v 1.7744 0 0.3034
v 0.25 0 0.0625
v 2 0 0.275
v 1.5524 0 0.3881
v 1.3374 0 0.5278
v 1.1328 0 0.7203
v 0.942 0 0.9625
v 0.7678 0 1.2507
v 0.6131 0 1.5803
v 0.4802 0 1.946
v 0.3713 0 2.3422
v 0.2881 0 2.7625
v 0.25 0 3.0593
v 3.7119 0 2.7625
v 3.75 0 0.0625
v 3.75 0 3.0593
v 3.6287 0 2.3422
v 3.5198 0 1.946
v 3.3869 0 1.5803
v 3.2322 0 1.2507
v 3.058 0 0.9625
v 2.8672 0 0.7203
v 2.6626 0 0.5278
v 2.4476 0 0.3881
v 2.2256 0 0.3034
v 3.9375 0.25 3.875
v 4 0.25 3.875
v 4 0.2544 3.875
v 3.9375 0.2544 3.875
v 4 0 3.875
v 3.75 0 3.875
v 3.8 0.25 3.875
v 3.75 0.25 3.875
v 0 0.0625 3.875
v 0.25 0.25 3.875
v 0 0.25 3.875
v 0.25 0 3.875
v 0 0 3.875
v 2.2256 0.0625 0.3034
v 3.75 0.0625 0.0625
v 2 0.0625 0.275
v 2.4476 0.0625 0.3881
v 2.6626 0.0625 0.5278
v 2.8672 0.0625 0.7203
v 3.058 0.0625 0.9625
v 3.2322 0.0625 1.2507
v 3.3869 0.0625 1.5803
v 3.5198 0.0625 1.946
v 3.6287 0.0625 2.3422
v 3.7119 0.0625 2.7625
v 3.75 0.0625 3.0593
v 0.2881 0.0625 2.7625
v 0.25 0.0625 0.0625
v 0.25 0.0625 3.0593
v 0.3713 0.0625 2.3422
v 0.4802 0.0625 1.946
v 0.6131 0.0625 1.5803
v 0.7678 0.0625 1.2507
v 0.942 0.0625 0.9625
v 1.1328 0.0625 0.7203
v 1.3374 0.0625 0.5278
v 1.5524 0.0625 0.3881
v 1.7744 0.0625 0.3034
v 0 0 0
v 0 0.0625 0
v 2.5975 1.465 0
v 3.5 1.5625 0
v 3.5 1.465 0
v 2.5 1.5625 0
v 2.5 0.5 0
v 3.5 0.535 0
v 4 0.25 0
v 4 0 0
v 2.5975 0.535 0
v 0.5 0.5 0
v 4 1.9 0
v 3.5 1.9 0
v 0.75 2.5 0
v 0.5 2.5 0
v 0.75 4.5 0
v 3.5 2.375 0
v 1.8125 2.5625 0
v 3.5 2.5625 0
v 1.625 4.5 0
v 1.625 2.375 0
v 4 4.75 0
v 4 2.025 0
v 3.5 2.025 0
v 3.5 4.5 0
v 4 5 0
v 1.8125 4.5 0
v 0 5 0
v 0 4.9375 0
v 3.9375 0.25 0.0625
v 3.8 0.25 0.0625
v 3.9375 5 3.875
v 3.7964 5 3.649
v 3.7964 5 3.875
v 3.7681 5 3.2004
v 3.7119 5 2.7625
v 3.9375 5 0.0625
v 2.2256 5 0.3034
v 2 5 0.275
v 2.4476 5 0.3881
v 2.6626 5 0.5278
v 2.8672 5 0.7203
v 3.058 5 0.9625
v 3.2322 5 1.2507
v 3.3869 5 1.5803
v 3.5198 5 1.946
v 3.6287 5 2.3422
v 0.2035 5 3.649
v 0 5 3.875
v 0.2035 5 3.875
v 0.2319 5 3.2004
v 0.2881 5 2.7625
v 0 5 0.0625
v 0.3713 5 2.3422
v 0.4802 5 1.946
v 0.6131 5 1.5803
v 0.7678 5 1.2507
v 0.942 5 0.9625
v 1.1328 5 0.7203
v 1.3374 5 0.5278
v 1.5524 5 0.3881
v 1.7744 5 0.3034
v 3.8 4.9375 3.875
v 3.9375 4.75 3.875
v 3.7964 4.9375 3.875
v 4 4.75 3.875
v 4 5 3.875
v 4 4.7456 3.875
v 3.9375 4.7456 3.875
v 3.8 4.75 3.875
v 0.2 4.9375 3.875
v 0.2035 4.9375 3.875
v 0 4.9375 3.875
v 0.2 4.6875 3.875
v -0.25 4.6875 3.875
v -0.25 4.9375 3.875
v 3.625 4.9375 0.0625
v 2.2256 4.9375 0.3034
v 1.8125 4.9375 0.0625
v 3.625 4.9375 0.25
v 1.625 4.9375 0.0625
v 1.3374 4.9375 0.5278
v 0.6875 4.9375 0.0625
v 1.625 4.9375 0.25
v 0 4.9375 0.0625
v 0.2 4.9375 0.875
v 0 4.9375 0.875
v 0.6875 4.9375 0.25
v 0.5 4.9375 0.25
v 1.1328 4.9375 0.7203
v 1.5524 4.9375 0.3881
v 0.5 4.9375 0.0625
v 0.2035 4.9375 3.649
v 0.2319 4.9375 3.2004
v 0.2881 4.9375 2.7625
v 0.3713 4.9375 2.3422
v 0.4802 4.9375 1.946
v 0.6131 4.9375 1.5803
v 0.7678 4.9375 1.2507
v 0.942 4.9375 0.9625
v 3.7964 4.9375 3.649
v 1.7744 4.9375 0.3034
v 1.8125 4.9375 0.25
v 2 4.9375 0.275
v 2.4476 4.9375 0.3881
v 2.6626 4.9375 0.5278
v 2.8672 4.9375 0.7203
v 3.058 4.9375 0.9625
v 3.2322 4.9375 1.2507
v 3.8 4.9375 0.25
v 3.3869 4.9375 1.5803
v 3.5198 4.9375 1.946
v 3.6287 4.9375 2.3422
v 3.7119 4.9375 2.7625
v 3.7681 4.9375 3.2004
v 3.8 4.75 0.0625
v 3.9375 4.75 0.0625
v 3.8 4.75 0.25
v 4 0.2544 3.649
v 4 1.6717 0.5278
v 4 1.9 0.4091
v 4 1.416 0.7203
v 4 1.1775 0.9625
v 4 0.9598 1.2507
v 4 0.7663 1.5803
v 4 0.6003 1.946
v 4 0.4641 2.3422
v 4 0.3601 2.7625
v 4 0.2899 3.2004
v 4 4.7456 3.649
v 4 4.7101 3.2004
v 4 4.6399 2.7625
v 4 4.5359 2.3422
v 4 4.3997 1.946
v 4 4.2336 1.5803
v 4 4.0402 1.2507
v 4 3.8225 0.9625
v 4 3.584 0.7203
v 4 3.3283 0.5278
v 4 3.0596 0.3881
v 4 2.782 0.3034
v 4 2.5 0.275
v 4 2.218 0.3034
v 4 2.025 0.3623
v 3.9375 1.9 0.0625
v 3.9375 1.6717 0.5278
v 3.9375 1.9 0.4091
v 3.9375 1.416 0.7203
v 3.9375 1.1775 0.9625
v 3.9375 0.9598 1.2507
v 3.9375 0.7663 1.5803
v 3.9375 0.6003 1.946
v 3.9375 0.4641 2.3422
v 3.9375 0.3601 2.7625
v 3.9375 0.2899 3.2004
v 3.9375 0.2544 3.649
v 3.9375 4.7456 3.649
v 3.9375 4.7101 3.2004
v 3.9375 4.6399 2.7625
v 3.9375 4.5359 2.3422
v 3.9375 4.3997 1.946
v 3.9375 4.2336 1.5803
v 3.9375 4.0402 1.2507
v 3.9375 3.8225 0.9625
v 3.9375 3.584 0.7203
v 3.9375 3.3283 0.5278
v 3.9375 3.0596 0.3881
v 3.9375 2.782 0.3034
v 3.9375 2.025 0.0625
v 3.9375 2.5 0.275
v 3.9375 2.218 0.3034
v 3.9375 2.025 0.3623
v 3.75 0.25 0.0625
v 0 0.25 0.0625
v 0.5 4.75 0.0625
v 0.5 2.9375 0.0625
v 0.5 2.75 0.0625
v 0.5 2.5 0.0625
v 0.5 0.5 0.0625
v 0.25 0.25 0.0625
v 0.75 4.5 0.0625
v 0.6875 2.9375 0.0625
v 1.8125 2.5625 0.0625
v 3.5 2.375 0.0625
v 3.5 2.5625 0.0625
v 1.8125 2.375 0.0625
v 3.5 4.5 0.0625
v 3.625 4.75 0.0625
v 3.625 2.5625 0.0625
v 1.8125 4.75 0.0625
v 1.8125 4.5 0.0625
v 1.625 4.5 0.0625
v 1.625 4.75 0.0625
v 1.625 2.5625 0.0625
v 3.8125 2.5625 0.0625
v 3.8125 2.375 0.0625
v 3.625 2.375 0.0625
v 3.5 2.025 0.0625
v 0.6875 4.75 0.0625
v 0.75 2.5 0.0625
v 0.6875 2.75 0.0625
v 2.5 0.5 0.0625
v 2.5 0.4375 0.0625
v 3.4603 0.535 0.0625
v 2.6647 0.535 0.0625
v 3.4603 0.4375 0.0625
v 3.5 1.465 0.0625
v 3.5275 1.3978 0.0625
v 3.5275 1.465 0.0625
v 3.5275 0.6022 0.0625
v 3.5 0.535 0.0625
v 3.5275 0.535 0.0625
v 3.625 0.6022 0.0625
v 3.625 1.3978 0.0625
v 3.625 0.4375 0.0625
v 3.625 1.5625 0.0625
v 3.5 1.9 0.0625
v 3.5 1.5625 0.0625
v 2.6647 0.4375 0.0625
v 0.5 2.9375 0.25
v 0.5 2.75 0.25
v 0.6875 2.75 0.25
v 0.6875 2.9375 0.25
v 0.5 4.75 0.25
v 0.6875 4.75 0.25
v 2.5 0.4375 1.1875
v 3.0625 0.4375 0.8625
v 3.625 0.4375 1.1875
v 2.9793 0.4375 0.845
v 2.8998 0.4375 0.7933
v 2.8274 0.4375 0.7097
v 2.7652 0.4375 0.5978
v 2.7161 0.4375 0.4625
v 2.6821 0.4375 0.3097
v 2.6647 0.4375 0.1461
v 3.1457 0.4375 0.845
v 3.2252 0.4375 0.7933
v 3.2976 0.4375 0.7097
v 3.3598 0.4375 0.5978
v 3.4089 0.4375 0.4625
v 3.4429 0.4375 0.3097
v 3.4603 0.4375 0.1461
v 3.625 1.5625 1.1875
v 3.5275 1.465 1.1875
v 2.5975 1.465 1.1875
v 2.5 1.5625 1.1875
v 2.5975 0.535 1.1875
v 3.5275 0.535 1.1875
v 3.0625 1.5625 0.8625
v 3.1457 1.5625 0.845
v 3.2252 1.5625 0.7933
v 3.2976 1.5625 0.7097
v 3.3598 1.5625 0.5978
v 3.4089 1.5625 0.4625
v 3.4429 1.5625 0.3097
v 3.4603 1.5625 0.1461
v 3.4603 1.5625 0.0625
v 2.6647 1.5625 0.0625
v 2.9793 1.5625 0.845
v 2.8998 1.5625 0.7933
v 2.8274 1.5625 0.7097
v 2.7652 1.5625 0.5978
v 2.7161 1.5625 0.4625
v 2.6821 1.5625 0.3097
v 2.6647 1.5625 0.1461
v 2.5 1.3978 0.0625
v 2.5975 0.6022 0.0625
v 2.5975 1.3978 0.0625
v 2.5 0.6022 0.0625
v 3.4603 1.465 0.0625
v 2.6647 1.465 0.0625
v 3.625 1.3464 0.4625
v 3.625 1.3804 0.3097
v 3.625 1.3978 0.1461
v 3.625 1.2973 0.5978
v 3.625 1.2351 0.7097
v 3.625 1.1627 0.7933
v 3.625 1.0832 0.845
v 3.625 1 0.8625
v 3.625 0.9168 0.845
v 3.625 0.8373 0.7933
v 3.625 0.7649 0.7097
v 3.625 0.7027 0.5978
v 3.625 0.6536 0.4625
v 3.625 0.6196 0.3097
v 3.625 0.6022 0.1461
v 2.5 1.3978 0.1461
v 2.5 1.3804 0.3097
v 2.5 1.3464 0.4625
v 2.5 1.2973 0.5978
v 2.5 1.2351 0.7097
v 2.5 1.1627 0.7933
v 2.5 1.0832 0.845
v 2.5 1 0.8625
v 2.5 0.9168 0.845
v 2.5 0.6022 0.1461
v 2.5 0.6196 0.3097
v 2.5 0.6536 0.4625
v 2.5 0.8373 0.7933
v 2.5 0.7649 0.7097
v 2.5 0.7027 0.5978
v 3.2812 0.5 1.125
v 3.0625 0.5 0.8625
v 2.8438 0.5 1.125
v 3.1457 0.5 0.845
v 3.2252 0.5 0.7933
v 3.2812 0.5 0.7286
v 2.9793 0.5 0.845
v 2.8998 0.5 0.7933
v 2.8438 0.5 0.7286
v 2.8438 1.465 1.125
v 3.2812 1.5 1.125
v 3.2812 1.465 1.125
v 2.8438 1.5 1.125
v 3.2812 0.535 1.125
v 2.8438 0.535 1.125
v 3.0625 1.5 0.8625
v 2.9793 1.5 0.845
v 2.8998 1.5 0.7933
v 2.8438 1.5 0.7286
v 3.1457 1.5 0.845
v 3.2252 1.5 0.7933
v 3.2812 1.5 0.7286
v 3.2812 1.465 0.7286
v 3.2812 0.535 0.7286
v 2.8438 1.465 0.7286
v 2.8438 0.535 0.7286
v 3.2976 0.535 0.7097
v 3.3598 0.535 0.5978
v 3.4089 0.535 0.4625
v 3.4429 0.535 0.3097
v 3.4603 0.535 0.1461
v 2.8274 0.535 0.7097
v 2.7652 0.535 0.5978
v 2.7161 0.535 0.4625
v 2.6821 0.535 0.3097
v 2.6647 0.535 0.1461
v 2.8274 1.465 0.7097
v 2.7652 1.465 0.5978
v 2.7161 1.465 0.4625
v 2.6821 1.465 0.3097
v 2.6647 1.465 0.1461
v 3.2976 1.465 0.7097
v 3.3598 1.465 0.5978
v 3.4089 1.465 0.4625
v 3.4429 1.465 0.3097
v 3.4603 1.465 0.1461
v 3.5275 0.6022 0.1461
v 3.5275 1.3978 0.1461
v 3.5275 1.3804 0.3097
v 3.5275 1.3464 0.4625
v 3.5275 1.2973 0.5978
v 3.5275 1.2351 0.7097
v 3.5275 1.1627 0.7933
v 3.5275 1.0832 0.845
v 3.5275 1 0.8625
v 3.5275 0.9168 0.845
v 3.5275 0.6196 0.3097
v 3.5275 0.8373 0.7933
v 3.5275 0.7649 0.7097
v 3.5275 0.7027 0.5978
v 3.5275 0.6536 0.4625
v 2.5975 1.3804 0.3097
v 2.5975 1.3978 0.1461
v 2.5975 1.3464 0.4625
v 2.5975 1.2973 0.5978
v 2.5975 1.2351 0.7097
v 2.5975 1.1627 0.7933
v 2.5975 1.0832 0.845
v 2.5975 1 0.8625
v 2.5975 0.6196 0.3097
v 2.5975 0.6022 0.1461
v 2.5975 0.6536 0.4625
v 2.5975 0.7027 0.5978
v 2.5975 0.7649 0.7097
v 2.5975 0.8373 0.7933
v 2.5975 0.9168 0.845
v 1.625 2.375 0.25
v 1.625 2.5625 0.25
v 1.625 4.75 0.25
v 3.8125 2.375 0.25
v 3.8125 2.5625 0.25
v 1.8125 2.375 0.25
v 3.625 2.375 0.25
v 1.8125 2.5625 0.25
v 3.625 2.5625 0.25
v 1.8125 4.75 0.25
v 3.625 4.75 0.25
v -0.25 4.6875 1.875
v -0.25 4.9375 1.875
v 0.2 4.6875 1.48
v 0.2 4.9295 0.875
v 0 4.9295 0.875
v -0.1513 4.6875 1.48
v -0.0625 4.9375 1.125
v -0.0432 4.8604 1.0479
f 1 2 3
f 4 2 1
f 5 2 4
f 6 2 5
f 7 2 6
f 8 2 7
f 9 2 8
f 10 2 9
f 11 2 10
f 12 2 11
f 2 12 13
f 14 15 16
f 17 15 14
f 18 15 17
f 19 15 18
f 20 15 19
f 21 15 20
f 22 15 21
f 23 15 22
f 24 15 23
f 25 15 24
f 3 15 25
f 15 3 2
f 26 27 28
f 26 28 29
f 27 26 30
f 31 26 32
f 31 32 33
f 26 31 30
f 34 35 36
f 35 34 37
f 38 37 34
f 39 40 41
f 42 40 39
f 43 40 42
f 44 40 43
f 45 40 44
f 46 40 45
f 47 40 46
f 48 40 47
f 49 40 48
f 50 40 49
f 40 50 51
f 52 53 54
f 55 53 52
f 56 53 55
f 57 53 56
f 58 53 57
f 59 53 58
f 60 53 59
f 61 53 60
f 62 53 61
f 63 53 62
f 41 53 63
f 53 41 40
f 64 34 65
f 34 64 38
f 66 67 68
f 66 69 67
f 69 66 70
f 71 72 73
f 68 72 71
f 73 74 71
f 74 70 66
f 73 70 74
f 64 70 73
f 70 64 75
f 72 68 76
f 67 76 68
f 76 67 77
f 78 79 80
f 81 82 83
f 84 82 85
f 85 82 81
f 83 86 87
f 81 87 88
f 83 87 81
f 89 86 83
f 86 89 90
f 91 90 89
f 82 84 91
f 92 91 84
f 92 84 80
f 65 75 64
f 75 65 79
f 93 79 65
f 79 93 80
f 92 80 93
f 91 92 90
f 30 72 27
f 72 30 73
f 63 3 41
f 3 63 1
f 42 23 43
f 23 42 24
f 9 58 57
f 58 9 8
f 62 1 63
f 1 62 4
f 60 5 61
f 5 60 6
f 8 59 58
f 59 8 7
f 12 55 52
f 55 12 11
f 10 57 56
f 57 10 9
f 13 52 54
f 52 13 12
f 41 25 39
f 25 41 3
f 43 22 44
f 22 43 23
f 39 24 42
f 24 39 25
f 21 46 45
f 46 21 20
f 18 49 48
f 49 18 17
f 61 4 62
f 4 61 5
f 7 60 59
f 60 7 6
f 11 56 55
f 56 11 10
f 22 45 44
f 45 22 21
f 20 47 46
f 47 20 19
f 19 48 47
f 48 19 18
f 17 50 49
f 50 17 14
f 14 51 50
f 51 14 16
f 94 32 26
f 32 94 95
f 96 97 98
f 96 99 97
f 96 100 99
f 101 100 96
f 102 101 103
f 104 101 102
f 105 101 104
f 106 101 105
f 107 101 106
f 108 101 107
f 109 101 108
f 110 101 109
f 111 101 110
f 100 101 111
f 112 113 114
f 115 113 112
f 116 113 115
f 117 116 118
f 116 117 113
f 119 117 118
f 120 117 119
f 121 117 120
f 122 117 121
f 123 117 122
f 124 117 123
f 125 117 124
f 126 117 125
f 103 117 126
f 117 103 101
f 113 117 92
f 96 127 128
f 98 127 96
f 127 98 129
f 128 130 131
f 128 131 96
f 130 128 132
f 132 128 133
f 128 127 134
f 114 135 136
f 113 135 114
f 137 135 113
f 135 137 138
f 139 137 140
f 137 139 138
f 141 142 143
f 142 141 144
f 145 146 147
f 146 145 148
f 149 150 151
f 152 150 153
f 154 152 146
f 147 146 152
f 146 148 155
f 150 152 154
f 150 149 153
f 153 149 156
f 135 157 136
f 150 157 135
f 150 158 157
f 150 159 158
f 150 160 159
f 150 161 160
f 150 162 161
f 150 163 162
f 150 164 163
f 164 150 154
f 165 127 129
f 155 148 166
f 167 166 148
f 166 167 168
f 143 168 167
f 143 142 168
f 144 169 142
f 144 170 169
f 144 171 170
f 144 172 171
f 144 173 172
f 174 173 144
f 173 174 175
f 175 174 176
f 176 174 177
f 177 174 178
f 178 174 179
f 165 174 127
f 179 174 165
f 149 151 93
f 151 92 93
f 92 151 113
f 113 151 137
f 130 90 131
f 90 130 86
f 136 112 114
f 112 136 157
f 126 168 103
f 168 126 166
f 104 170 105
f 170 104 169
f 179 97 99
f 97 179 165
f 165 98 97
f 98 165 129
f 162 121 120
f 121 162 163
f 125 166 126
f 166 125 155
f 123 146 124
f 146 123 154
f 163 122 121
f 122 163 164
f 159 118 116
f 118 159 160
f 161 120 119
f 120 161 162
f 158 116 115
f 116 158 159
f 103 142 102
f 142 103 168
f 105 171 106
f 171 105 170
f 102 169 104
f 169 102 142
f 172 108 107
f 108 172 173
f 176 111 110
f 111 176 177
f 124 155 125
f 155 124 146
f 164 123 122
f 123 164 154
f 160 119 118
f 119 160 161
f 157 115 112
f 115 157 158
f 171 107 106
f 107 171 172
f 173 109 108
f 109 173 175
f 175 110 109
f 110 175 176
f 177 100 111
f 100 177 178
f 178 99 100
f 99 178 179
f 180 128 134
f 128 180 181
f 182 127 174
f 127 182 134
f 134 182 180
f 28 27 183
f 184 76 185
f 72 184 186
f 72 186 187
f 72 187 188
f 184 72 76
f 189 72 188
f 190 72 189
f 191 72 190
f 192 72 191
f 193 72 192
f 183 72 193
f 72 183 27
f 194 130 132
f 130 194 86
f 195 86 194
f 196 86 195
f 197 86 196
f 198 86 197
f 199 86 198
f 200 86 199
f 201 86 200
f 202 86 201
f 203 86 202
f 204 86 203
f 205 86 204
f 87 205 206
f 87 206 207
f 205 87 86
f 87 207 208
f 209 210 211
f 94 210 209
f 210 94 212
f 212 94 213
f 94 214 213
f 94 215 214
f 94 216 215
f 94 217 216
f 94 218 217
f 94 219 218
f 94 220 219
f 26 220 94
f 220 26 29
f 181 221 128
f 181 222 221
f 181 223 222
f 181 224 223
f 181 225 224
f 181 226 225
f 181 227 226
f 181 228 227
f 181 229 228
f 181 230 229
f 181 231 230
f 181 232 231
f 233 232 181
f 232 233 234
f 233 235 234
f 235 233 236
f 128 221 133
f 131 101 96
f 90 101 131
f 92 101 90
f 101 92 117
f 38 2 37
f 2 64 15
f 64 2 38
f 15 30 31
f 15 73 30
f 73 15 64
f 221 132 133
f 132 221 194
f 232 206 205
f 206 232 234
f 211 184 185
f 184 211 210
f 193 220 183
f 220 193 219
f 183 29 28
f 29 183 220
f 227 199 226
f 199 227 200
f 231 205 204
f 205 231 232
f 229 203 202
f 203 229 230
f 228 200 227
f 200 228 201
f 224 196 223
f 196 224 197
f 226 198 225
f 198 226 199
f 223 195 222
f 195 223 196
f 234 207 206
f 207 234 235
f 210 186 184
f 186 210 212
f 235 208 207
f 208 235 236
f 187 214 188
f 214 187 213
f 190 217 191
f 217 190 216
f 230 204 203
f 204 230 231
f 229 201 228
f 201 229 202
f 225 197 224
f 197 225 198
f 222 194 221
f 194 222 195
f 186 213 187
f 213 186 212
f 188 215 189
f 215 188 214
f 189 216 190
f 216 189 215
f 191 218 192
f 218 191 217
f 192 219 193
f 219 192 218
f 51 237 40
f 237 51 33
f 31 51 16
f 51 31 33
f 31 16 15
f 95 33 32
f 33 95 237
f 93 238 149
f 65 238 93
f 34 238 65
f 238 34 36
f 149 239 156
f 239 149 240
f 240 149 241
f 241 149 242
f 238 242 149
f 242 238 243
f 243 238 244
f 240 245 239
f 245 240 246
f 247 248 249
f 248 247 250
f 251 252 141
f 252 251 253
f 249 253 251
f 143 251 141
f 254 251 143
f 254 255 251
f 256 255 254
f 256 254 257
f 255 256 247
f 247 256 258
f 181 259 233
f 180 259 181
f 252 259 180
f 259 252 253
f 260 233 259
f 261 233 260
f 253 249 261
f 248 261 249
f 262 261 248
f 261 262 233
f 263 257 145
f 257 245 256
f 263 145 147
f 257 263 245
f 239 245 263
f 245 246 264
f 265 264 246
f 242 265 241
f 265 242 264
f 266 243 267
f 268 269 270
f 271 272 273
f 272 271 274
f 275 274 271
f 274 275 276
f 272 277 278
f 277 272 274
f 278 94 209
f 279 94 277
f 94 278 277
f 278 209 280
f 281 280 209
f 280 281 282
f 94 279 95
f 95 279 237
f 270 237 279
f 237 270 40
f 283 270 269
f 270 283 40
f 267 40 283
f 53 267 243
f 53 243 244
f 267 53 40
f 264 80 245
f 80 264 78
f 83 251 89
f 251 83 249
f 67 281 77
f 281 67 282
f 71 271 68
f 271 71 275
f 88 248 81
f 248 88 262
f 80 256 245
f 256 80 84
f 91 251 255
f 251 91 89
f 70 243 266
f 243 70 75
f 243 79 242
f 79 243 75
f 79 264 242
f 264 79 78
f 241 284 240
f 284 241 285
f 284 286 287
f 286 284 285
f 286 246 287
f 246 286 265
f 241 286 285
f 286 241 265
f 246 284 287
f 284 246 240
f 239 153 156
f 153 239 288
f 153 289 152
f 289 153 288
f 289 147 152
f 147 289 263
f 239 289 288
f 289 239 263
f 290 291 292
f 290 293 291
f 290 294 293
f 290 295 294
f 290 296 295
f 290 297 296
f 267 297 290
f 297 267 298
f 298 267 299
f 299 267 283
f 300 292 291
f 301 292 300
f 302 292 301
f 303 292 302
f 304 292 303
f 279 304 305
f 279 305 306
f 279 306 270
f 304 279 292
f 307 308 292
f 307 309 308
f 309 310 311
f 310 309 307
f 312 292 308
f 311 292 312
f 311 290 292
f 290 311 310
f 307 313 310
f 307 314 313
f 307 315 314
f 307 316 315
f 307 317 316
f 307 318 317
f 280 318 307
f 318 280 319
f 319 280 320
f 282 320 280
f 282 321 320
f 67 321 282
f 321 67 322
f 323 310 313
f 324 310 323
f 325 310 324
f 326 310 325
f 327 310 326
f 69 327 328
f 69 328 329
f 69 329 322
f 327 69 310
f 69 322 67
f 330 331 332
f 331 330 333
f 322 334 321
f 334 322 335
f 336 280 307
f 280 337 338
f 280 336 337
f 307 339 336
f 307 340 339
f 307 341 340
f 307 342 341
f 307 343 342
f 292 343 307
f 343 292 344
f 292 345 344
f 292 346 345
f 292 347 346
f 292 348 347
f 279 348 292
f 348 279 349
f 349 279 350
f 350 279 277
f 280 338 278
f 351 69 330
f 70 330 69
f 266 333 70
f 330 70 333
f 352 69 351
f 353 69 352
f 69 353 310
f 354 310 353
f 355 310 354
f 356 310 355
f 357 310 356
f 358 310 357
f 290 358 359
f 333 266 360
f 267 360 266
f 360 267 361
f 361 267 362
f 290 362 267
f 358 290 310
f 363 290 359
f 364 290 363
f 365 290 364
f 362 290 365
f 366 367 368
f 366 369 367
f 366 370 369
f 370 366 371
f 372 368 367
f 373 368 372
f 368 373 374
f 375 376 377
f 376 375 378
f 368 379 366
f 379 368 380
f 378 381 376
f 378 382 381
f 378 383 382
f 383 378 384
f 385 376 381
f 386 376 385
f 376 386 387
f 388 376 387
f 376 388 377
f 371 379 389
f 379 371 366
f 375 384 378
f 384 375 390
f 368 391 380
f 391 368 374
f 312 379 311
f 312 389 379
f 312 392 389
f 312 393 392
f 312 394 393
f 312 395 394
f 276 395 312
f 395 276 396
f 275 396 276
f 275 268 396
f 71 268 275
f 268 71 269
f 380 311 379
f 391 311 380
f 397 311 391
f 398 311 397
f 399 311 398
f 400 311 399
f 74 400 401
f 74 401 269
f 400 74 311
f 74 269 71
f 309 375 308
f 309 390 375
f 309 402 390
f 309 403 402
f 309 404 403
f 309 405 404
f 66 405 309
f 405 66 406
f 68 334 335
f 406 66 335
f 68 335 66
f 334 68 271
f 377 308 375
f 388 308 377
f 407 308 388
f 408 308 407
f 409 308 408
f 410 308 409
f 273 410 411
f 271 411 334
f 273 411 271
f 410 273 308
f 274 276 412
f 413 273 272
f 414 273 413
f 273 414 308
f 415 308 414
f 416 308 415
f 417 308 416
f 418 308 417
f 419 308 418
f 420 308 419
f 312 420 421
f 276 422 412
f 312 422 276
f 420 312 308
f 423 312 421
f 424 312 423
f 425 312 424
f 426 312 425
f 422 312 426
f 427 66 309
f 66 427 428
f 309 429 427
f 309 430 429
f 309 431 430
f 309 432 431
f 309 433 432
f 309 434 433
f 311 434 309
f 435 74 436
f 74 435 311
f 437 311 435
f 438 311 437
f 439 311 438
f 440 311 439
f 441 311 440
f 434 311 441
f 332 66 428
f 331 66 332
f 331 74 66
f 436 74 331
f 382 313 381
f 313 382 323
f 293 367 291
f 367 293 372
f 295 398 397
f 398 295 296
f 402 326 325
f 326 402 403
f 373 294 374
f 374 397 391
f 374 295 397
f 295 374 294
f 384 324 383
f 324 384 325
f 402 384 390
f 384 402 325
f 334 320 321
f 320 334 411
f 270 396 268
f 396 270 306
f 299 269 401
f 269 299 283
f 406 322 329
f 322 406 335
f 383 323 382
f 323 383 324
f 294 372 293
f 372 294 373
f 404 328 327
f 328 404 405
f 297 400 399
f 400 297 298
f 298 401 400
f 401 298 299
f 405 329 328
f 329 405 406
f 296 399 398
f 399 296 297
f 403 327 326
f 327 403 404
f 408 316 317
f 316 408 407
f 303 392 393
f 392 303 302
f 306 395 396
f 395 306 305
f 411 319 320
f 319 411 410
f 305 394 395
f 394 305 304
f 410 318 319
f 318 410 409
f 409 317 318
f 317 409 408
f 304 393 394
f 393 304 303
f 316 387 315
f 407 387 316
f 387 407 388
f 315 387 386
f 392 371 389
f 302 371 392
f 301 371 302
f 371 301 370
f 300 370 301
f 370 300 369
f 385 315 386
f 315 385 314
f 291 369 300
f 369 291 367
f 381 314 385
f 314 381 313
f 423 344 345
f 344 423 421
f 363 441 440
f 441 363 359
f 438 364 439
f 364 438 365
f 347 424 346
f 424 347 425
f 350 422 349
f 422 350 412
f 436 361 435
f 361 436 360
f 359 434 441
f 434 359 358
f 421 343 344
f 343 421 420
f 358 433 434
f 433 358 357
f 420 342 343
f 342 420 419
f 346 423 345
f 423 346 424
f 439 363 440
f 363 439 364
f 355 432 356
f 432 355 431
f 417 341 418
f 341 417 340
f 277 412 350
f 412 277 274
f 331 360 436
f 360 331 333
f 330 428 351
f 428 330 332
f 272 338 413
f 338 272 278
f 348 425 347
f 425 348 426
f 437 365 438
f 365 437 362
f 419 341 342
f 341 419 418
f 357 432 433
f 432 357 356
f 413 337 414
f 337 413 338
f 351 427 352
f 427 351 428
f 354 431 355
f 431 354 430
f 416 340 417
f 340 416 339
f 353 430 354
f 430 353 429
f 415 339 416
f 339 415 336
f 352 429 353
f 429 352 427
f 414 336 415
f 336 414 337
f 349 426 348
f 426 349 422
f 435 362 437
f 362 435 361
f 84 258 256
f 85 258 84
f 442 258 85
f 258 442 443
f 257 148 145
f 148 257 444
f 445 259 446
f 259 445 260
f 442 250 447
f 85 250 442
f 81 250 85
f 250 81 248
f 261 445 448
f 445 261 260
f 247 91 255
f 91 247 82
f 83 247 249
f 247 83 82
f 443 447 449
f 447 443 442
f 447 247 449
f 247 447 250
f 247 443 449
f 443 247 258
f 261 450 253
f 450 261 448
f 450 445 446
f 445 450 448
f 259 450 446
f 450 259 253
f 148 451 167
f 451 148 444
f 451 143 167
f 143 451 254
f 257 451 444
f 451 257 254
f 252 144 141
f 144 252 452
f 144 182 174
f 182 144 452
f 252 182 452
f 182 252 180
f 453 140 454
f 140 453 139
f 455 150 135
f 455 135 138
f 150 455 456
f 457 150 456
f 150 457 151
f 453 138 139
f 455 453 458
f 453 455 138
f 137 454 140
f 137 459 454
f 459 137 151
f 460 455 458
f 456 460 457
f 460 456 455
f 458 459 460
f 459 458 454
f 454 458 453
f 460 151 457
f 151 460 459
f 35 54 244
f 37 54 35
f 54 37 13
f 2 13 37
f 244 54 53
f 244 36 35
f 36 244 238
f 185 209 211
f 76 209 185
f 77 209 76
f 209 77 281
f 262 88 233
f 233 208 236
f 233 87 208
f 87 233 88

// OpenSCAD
thickness = 1 / 16;

module socket_housing() {
    translate([(1+1/8)/2,(1+1/8)/2,(1+1/8)/2]) rotate([0,0,90])
    union() {
        difference() {
            difference() {
                cube([1+1/8,1+1/8,1+1/8],center=true);
                translate([0,0,-1/16]) cube([1,7/16,1+1/8],center=true);
                translate([0,0,-1/32]) cube([.93,.93,2],center=true);
            }
            translate([0,0,-.5*9/8]) for (a = [0:90:90]) {
                translate([])
                rotate([0,90,a])
                scale([2,1,1]) cylinder(h=2,d=.8,$fn=30, center=true);
            }
        }
        difference() {
            translate([0,0, -.5 - 3/32]) cube([1+1/8,1+1/8, thickness], center=true);
            translate([0,0, -.5 - 3/32]) cube([.93, .93, thickness*4], center=true);
        }
    }
}

module rcaport() {
    cube([3/8,3/8,.5]);
    translate([-6/16,3/16,5/16]) rotate([0,90,0]) cylinder(d=5/16, h=3/8, $fn=20);
}

module spacer() { cube(size=3/16); }

module wall() {
    translate(v=[0,0,0]) {
        difference() {
            cube(size=[thickness,5,3+7/8]); 
            translate(v=[-.25,2.5 ,3+7/8]) { scale([1,1,1.6]) { rotate([0,90,0]) {
                cylinder(d=4.5, $fn=50);
            }}}
        }        
        cube([.25,.25,3+7/8]);
    }
}

module tri() {
    translate([0,0,-1]) {
    linear_extrude(height=2)
        polygon(points = [[0, 0],[.9, 0],[0, .9]]);
    linear_extrude(height=2)
        polygon(points = [[1, .1],[1, 1],[.1, 1]]);
}    }

module tri2() {
    rotate([]) linear_extrude(height=1)
        polygon(points = [[0, 0],[1, 0],[0, 1]]);
}

// baSe
/*
difference() {
    cube(size=[5,5,thickness]);
    translate([.25,.3,0]) scale([2.7,1.8,1]) tri();
    translate([2.55,3,0]) scale([2.25,1.7,1]) tri();
    translate([2.4,3,0]) scale([2,1.7,1]) mirror([1,0,0]) tri();
    translate([3.25,2.8,0]) scale([1.5,2.5,1]) mirror([0,1,0]) tri();    
    translate([1.8,2.2,0]) scale([1.3,.7,1]) mirror([1,0,0]) tri();    
    translate([1.9,2.2,0]) scale([1.2,.7,1]) tri();    
    
}

wall();

translate([0,5,0]) { rotate([0,0,-90]) { wall(); } }

translate([5,0,0]) { rotate([0,0,90]) { wall(); } }

translate([.25,0,4/16]) {
    translate([0, 1/16,0]) {
        //cube([2+15/16, 2+3/16, .5]);
    }
    translate([0,5-(2+4/16),0]) { cube([5+7/16, 2+3/16, .5]); }
}

//spacers for 4channel board
translate([.25,1/16,1/16]) { spacer(); }
translate([.25 + 2+15/16 - 3/16,1/16,1/16]) { spacer(); }
translate([.25,1/16 + 2+4/16 - .25,1/16]) { spacer(); }
translate([.25 + 2+15/16 - 3/16,1/16 + 2+4/16 - .25,1/16]) { spacer(); }

//spacers for 8channel board
translate([0,5-(2+5/16),0]) {
translate([.25,1/16,1/16]) { spacer(); }
translate([1.75+.25 + 2+15/16 - 3/16,1/16,1/16]) { spacer(); }
translate([.25,1/16 + 2+4/16 - .25,1/16]) { spacer(); }
translate([1.75+.25 + 2+15/16 - 3/16,1/16 + 2+4/16 - .25,1/16]) { spacer(); }
}*/



// bottom portion

translate([-5,0,0]) difference() {
union() { 

translate([9,0,0]) scale([4/5,1,1]) rotate([0,0,90]) wall();
translate([0,5,0]) mirror([0,1,0]) translate([9,0,0]) scale([4/5,1,1]) rotate([0,0,90]) wall();
translate([9,0,0]) mirror([1,0,0]) wall();



// right side fastener
translate([4.75,4.75-1/16,7/8]) {
    difference() {
        cube([.45,.25,3]);
        translate([.5,-.154,-.01]) rotate([0,-90,0])  scale([1,.4,1]) tri2();
        rotate([-90,-90,0]) scale([1,.25,1]) tri2();
    }
}

difference() { 
    translate([5,0,0]) cube([4,5,thickness]);
    translate([5.75,.5,thickness*-.5]) cube([2.75,4,thickness*2]);
    translate([5.5,.5,thickness*-.5]) cube([1,2,thickness*2]);   
}

// pi power socket housing
translate([9-(1.5),7/16,thickness]) {
    socket_housing();
}

// pi board spacers
translate([9-(2+2/16+.25),5-(2+10/16),thickness]) {
    spacer();
    translate([2,0,0]) spacer();
    translate([0,2+6/16,0]) spacer();
    translate([2,2+6/16,0]) spacer();
    translate([0,0,-thickness]) difference() {
        cube([2+3/16, 2+9/16,thickness]);
        translate([3/16,3/16,-thickness*.25]) cube([1+12/16, 2+3/16,thickness*2]);
    }
}

// pi boards
/*translate([9-(2+2/16+.25),5-(2+10/16),thickness + 3/16]) {
    translate([-.25,5/16,1+1/32]) rcaport();
    translate([-.25,15/16,1+1/32]) rcaport();
    translate([-.25,0,1]) cube([1+3/16,2+9/16,1/32]);
    cube([2+3/16, 2+9/16,1]);
}*/

translate([5,0.0]) cube([.25,.25,3+7/8]);

// 8 channel spacer bottom two
translate([0,5-(2+5/16),0]) {
translate([5.5,1/16,1/16]) { spacer(); }
translate([5.5,2+1/16,1/16]) { spacer(); }
}}
    translate([8,1.9,-1]) cube([2,1/8,2]);}
